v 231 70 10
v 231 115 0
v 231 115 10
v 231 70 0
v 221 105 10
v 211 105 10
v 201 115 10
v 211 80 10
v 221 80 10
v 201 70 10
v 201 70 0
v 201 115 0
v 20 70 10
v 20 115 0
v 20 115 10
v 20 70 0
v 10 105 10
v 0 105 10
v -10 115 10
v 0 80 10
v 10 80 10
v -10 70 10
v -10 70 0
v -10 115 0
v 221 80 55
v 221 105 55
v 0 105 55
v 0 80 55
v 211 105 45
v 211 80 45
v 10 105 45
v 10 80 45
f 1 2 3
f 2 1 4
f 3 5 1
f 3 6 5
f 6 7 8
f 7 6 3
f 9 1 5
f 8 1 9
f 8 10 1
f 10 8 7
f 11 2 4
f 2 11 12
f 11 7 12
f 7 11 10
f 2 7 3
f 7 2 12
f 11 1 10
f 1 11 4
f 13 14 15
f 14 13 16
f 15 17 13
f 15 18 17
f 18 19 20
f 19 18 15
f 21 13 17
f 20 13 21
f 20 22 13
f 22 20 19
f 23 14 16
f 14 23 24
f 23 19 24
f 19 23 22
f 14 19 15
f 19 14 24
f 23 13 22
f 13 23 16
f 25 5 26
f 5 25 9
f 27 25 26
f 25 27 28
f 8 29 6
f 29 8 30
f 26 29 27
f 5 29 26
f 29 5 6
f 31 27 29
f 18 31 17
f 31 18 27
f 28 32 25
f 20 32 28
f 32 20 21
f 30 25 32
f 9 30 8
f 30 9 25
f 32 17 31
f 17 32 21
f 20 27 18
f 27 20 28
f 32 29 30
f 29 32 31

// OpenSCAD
// 35mm High
// 221mm Long
// 82mm Deep

// Constants
offsetHeight = 10;

// Main Bar Variables
mainBarOffsetX = 0;
mainBarOffsetY = 80;
mainBarOffsetZ = 35 + offsetHeight;
mainBarOffsetC = [mainBarOffsetX,mainBarOffsetY,mainBarOffsetZ];
mainBarX = 221;
mainBarY = 25;
mainBarZ = 10;

// Leg 1 Varibles
leg1X = 10;
leg1Y = mainBarY;
leg1Z = mainBarOffsetZ;
leg1OffsetX = mainBarOffsetX;
leg1OffsetY = mainBarOffsetY;
leg1OffsetZ = 0 + offsetHeight;
leg1OffsetC = [leg1OffsetX,leg1OffsetY,leg1OffsetZ];

// Leg 2 Varibles
leg2X = 10;
leg2Y = mainBarY;
leg2Z = mainBarOffsetZ;
leg2OffsetX = mainBarOffsetX + mainBarX - leg2X;
leg2OffsetY = mainBarOffsetY;
leg2OffsetZ = 0 + offsetHeight;
leg2OffsetC = [leg2OffsetX,leg2OffsetY,leg2OffsetZ];

// Foot 1 Varibles
foot1X = 20+leg1X;
foot1Y = 20+leg1Y;
foot1Z = 10;
foot1OffsetX = leg1OffsetX-10;
foot1OffsetY = leg1OffsetY-10;
foot1OffsetZ = 0;
foot1OffsetC = [foot1OffsetX,foot1OffsetY,foot1OffsetZ];

// Foot 2 Varibles
foot2X = 20+leg2X;
foot2Y = 20+leg2Y;
foot2Z = 10;
foot2OffsetX = leg2OffsetX-10;
foot2OffsetY = leg2OffsetY-10;
foot2OffsetZ = 0;
foot2OffsetC = [foot2OffsetX,foot2OffsetY,foot2OffsetZ];


module mainBar() {
    mainBarC = [mainBarX,mainBarY,mainBarZ];
    cube(mainBarC); 
}

module leg1() {
    leg1C = [leg1X,leg1Y,leg1Z];
    cube(leg1C);
}

module leg2() {
    leg2C = [leg2X,leg2Y,leg2Z];
    cube(leg2C);
}

module foot1() {
    foot1C = [foot1X,foot1Y,foot1Z];
    cube(foot1C);
}

module foot2() {
    foot2C = [foot2X,foot2Y,foot2Z];
    cube(foot2C);
}

translate(foot2OffsetC) foot2();
translate(foot1OffsetC) foot1();
translate(leg2OffsetC) leg2();
translate(leg1OffsetC) leg1();
translate(mainBarOffsetC) mainBar();
